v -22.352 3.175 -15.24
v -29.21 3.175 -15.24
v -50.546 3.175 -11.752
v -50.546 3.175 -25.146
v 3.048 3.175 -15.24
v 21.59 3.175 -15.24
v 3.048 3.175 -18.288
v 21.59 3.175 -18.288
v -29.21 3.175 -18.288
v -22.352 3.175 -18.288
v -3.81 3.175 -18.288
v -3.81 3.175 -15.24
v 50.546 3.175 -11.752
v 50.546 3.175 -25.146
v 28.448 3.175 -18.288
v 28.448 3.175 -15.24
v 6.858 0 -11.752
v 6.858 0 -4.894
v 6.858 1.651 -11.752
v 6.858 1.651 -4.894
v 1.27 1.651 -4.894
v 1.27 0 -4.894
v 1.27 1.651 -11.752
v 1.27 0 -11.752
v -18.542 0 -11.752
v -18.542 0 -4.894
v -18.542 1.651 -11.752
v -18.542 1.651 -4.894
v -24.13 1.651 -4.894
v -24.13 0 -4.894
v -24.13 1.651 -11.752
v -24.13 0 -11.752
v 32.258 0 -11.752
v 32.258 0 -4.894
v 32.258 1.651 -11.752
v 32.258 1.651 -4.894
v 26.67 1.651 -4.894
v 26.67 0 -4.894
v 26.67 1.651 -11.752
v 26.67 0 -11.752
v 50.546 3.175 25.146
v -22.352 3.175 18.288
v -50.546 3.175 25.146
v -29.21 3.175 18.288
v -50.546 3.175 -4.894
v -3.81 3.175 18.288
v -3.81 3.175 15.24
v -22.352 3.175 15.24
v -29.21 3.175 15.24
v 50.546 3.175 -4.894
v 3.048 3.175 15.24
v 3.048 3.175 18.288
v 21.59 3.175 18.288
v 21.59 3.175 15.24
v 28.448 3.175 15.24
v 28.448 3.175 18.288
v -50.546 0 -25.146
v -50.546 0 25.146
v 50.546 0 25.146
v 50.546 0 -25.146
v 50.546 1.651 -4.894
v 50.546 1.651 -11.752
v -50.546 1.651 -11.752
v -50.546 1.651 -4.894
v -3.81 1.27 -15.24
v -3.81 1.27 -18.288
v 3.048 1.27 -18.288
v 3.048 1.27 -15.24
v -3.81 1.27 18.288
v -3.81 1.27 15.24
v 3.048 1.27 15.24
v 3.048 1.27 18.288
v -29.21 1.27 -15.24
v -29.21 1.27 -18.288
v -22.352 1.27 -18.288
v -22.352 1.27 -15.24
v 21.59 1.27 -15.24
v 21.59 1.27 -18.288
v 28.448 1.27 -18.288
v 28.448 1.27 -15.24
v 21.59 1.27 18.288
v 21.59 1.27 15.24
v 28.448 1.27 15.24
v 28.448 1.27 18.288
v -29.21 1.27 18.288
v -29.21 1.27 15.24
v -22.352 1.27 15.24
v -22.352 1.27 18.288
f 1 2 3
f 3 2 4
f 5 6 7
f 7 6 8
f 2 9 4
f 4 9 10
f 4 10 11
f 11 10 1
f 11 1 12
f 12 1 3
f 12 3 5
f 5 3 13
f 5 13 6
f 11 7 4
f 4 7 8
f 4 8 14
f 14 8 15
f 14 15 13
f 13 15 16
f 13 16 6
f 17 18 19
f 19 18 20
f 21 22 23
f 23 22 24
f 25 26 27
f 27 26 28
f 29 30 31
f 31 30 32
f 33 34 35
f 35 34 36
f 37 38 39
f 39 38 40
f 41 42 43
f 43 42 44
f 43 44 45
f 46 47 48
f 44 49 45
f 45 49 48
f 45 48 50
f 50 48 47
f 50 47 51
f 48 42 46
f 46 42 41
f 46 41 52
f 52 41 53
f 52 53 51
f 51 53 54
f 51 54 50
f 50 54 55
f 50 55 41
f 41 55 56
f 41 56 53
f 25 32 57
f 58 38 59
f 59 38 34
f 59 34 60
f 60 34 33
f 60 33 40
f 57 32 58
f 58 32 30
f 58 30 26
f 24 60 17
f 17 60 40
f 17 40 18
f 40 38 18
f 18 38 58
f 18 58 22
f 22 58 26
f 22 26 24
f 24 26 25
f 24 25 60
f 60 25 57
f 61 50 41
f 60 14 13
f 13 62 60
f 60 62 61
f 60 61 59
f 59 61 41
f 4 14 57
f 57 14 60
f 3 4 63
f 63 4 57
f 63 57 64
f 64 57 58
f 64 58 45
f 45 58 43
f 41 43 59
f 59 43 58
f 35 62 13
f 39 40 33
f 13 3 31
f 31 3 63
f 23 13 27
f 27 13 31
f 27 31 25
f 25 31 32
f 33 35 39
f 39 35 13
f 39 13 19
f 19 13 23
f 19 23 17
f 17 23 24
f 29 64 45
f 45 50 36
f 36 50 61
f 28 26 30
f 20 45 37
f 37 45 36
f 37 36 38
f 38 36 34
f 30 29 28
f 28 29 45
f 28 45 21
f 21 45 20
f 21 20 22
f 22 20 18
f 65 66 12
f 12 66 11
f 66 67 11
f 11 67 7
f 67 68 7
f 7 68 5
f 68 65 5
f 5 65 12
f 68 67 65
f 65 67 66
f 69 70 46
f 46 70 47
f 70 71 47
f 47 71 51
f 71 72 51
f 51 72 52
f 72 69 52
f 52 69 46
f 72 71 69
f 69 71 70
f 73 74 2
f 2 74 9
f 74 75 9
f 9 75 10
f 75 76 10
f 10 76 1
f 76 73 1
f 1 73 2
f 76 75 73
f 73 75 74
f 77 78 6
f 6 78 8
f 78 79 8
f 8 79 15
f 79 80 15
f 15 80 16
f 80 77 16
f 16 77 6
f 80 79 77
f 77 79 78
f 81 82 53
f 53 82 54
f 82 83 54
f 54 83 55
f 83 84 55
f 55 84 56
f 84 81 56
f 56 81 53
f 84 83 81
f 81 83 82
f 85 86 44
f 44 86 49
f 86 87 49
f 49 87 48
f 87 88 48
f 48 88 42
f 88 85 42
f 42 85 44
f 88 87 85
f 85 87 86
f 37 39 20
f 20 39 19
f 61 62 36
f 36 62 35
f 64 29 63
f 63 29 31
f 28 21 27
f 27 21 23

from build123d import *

# Parameters (mm, degrees)
SKETCH1_W                     = 101.092
SKETCH1_H                     = 50.292
BOSS_EXTRUDE1_DEPTH           = 3.175
SKETCH2_W                     = 5.588
SKETCH2_H                     = 6.858
WIRE_HOLE_DEPTH               = 4.175
SKETCH3_W                     = 6.858
SKETCH3_H                     = 3.048
CUT_EXTRUDE2_DEPTH            = 1.905
LPATTERN1_COUNT               = 2
LPATTERN1_PITCH               = 25.4
LPATTERN1_COPY_1_SKETCH_W     = 6.858
LPATTERN1_COPY_1_SKETCH_H     = 3.048
LPATTERN1_COPY_1_DEPTH        = 1.905
LPATTERN1_COL_COUNT           = 2
LPATTERN1_COL_PITCH           = 25.4
LPATTERN1_COL_COPY_1_SKETCH_W = 6.858
LPATTERN1_COL_COPY_1_SKETCH_H = 3.048
LPATTERN1_COL_COPY_1_DEPTH    = 1.905
SKETCH4_W                     = 101.092
SKETCH4_H                     = 6.858
CUT_EXTRUDE3_DEPTH            = 1.524


with BuildPart() as part:
    # Sketch1 → Boss-Extrude1 (new body)
    with BuildSketch(Plane(origin=(0, 0, 0), x_dir=(1, 0, 0), z_dir=(0, 1, 0))):
        Rectangle(SKETCH1_W, SKETCH1_H)
    extrude(amount=BOSS_EXTRUDE1_DEPTH)

    # Sketch2 → Wire Hole (cut, through all)
    with BuildSketch(Plane(origin=(0, 3.175, 0), x_dir=(1, 0, 0), z_dir=(0, 1, 0))):
        with Locations((4.064, 8.322545685)):
            Rectangle(SKETCH2_W, SKETCH2_H)
    wire_hole = extrude(amount=-WIRE_HOLE_DEPTH, mode=Mode.SUBTRACT)

    # Sketch3 → Cut-Extrude2 (cut)
    with BuildSketch(Plane(origin=(0, 3.175, 0), x_dir=(1, 0, 0), z_dir=(0, 1, 0))):
        with Locations((-0.381, 16.764)):
            Rectangle(SKETCH3_W, SKETCH3_H)
    cut_extrude2 = extrude(amount=-CUT_EXTRUDE2_DEPTH, mode=Mode.SUBTRACT)

    # Mirror1: Cut-Extrude2 across plane
    add(cut_extrude2.mirror(Plane.XY), mode=Mode.SUBTRACT)

    # LPattern1: Wire Hole, Cut-Extrude2 ×2
    with Locations(*[(-i * LPATTERN1_PITCH, 0, 0) for i in range(1, LPATTERN1_COUNT)]):
        add(wire_hole, mode=Mode.SUBTRACT)
        add(cut_extrude2, mode=Mode.SUBTRACT)

    # LPattern1 copy 1 sketch → LPattern1 copy 1 (cut)
    with BuildSketch(Plane(origin=(-25.4, 3.175, 0), x_dir=(1, 0, 0), z_dir=(0, 1, 0))):
        with Locations((-0.381, -16.764)):
            Rectangle(LPATTERN1_COPY_1_SKETCH_W, LPATTERN1_COPY_1_SKETCH_H)
    extrude(amount=-LPATTERN1_COPY_1_DEPTH, mode=Mode.SUBTRACT)

    # LPattern1 col: Wire Hole, Cut-Extrude2 ×2
    with Locations(*[(i * LPATTERN1_COL_PITCH, 0, 0) for i in range(1, LPATTERN1_COL_COUNT)]):
        add(wire_hole, mode=Mode.SUBTRACT)
        add(cut_extrude2, mode=Mode.SUBTRACT)

    # LPattern1 col copy 1 sketch → LPattern1 col copy 1 (cut)
    with BuildSketch(Plane(origin=(25.4, 3.175, 0), x_dir=(1, 0, 0), z_dir=(0, 1, 0))):
        with Locations((-0.381, -16.764)):
            Rectangle(LPATTERN1_COL_COPY_1_SKETCH_W, LPATTERN1_COL_COPY_1_SKETCH_H)
    extrude(amount=-LPATTERN1_COL_COPY_1_DEPTH, mode=Mode.SUBTRACT)

    # Sketch4 → Cut-Extrude3 (cut)
    with BuildSketch(Plane(origin=(0, 3.175, 0), x_dir=(1, 0, 0), z_dir=(0, 1, 0))):
        with Locations((0, 8.322545685)):
            Rectangle(SKETCH4_W, SKETCH4_H)
    extrude(amount=-CUT_EXTRUDE3_DEPTH, mode=Mode.SUBTRACT)


solid = part.part
